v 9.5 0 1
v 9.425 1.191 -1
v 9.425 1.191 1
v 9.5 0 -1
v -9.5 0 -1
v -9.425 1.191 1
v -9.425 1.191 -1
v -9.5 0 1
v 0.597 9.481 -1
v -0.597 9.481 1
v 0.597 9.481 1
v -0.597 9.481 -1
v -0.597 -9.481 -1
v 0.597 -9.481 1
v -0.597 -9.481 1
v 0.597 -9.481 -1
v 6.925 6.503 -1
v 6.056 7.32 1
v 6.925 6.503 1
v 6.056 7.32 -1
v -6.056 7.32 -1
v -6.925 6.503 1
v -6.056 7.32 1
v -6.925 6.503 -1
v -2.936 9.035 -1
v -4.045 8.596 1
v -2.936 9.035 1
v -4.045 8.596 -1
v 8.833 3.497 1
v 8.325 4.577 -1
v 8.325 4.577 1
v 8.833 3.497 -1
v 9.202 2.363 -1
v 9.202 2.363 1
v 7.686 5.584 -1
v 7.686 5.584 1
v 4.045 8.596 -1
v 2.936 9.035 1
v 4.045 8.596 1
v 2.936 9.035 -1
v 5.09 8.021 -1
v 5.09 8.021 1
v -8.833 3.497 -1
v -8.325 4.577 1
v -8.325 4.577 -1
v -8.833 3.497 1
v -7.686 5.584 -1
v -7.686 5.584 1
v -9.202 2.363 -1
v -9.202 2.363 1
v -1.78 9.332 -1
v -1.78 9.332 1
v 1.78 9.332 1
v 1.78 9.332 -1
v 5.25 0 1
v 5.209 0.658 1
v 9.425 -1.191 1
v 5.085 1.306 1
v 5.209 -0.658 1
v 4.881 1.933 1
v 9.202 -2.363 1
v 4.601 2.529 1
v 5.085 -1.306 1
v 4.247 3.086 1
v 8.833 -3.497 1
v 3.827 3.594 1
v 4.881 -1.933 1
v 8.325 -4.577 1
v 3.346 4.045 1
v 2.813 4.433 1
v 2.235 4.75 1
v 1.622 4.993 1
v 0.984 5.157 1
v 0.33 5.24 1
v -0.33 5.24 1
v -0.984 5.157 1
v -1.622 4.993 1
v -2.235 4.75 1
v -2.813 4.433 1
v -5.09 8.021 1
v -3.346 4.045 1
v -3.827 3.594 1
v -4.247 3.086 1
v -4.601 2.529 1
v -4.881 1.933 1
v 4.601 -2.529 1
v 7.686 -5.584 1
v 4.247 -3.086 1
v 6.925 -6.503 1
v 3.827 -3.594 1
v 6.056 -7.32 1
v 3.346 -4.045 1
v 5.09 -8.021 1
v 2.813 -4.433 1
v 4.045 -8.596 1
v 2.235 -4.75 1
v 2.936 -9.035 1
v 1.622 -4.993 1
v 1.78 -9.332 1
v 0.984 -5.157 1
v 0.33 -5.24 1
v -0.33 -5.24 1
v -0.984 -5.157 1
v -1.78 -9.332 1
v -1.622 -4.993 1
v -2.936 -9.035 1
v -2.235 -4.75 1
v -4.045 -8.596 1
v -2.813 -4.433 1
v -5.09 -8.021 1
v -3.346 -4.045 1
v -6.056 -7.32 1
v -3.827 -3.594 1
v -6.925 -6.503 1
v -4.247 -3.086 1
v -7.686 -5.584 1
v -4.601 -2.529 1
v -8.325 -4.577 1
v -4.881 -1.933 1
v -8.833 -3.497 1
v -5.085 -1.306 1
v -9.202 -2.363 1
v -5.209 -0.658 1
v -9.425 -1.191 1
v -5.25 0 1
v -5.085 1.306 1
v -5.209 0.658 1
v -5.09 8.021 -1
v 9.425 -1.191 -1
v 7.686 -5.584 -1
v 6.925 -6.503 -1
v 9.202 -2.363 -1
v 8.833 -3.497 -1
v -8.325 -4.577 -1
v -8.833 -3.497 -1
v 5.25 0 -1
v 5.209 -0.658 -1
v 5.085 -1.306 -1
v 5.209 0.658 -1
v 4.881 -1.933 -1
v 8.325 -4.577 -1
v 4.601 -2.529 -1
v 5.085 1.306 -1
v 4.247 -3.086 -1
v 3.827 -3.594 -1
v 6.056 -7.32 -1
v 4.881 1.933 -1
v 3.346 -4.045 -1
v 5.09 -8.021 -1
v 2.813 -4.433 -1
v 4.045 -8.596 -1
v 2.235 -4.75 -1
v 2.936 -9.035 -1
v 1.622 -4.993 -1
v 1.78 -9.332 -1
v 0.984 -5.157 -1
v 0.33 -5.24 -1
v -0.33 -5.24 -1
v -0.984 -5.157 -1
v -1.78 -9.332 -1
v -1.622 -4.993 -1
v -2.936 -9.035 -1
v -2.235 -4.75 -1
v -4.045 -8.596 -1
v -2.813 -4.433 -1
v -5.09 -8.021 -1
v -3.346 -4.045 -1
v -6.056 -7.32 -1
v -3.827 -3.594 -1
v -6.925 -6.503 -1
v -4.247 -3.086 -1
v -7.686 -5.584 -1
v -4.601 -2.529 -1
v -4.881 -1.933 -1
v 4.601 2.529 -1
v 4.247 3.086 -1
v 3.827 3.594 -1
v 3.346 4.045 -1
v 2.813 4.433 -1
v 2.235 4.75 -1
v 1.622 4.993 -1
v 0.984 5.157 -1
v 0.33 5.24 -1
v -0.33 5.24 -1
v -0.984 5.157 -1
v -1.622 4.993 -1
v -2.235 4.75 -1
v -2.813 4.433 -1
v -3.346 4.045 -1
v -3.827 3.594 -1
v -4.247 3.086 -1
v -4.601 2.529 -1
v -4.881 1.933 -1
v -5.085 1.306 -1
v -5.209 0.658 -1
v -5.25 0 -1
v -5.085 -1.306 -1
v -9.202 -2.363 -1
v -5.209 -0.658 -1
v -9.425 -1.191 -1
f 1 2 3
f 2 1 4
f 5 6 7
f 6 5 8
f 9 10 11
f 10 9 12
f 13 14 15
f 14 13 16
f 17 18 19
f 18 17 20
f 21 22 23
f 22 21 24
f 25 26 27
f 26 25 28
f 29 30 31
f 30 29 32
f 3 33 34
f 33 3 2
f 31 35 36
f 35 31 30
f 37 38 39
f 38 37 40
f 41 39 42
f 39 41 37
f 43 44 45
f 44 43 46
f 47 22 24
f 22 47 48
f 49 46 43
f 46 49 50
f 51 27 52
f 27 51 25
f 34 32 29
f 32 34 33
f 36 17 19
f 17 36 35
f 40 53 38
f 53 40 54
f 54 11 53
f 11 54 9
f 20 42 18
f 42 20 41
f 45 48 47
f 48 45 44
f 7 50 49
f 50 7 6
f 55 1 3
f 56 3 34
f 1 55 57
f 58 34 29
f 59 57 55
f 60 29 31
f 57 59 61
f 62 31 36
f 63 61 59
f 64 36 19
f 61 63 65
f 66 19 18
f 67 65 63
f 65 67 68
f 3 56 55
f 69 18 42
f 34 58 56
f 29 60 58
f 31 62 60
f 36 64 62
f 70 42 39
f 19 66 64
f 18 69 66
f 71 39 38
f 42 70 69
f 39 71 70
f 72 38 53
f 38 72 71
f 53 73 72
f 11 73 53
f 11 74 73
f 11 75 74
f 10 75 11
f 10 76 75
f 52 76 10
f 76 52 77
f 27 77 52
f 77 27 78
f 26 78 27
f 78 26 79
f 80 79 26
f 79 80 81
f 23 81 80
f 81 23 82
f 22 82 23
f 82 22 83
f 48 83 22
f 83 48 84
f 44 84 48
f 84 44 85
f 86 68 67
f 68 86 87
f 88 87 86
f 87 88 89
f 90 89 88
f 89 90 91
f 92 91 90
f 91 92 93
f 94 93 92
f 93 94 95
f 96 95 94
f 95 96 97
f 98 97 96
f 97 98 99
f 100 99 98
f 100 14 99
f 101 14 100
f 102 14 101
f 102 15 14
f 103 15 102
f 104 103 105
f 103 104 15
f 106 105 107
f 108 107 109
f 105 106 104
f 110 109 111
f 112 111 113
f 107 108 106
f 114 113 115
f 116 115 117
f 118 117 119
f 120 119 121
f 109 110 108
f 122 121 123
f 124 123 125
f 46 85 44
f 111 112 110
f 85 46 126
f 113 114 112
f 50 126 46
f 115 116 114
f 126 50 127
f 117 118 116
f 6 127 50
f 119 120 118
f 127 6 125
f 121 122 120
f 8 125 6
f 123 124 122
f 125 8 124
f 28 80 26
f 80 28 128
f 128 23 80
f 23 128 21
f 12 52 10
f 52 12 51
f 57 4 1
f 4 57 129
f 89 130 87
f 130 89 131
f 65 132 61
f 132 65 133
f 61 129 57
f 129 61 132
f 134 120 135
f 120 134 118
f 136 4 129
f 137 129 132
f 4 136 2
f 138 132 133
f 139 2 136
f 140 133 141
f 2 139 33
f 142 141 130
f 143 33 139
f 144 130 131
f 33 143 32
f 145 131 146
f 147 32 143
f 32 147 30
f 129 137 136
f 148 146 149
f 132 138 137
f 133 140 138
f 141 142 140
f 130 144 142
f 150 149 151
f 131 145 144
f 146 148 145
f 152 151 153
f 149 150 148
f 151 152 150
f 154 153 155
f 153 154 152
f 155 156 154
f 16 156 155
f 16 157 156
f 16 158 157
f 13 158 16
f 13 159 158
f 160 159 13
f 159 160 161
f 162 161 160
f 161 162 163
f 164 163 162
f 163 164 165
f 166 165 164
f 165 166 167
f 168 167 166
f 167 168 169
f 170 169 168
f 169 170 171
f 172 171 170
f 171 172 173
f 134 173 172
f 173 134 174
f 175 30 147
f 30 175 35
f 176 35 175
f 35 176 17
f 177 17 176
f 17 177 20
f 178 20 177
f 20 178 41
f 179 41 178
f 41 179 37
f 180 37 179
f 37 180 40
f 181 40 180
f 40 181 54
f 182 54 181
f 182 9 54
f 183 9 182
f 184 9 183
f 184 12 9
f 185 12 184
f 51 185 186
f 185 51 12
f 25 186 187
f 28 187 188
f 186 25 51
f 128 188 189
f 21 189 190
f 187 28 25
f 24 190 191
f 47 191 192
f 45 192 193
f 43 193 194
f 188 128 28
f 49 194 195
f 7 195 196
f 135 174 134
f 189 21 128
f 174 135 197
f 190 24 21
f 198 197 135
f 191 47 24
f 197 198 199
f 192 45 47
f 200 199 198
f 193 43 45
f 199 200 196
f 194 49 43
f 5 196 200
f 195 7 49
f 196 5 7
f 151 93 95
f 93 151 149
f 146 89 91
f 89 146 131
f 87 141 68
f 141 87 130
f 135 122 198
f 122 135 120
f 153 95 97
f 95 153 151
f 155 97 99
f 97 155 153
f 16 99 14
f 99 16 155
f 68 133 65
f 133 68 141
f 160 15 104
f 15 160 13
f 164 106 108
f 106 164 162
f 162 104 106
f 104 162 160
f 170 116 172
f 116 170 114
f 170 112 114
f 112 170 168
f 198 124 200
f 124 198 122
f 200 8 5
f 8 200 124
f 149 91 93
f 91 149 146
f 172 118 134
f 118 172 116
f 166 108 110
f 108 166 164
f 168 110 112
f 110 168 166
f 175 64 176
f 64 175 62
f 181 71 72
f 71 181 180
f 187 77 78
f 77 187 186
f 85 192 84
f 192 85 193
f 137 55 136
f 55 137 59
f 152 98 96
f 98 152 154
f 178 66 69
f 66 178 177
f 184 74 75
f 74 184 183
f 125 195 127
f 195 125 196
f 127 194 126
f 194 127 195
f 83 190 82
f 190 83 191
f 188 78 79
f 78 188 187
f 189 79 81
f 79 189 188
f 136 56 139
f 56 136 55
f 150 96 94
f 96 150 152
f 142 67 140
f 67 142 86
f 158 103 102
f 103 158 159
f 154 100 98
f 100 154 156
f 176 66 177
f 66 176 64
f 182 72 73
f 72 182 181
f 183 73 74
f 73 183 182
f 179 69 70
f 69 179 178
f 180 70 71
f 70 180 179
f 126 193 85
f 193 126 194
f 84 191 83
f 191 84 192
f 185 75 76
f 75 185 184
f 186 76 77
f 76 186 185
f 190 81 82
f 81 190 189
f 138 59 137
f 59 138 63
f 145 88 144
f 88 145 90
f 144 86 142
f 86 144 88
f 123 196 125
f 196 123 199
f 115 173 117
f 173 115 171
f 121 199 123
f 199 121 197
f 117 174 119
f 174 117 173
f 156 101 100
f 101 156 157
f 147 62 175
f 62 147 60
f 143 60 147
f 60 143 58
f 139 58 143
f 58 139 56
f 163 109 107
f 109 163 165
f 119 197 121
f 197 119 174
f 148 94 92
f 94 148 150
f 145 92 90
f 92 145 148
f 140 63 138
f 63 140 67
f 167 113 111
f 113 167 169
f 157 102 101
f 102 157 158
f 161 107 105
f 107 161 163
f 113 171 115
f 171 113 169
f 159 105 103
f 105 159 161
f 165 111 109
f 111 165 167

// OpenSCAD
$fn = 50;


difference() {
	union() {
		translate(v = [0, 0, -1.0000000000]) {
			cylinder(h = 2, r = 9.5000000000);
		}
	}
	union() {
		translate(v = [0, 0, -100.0000000000]) {
			cylinder(h = 200, r = 5.2500000000);
		}
	}
}
